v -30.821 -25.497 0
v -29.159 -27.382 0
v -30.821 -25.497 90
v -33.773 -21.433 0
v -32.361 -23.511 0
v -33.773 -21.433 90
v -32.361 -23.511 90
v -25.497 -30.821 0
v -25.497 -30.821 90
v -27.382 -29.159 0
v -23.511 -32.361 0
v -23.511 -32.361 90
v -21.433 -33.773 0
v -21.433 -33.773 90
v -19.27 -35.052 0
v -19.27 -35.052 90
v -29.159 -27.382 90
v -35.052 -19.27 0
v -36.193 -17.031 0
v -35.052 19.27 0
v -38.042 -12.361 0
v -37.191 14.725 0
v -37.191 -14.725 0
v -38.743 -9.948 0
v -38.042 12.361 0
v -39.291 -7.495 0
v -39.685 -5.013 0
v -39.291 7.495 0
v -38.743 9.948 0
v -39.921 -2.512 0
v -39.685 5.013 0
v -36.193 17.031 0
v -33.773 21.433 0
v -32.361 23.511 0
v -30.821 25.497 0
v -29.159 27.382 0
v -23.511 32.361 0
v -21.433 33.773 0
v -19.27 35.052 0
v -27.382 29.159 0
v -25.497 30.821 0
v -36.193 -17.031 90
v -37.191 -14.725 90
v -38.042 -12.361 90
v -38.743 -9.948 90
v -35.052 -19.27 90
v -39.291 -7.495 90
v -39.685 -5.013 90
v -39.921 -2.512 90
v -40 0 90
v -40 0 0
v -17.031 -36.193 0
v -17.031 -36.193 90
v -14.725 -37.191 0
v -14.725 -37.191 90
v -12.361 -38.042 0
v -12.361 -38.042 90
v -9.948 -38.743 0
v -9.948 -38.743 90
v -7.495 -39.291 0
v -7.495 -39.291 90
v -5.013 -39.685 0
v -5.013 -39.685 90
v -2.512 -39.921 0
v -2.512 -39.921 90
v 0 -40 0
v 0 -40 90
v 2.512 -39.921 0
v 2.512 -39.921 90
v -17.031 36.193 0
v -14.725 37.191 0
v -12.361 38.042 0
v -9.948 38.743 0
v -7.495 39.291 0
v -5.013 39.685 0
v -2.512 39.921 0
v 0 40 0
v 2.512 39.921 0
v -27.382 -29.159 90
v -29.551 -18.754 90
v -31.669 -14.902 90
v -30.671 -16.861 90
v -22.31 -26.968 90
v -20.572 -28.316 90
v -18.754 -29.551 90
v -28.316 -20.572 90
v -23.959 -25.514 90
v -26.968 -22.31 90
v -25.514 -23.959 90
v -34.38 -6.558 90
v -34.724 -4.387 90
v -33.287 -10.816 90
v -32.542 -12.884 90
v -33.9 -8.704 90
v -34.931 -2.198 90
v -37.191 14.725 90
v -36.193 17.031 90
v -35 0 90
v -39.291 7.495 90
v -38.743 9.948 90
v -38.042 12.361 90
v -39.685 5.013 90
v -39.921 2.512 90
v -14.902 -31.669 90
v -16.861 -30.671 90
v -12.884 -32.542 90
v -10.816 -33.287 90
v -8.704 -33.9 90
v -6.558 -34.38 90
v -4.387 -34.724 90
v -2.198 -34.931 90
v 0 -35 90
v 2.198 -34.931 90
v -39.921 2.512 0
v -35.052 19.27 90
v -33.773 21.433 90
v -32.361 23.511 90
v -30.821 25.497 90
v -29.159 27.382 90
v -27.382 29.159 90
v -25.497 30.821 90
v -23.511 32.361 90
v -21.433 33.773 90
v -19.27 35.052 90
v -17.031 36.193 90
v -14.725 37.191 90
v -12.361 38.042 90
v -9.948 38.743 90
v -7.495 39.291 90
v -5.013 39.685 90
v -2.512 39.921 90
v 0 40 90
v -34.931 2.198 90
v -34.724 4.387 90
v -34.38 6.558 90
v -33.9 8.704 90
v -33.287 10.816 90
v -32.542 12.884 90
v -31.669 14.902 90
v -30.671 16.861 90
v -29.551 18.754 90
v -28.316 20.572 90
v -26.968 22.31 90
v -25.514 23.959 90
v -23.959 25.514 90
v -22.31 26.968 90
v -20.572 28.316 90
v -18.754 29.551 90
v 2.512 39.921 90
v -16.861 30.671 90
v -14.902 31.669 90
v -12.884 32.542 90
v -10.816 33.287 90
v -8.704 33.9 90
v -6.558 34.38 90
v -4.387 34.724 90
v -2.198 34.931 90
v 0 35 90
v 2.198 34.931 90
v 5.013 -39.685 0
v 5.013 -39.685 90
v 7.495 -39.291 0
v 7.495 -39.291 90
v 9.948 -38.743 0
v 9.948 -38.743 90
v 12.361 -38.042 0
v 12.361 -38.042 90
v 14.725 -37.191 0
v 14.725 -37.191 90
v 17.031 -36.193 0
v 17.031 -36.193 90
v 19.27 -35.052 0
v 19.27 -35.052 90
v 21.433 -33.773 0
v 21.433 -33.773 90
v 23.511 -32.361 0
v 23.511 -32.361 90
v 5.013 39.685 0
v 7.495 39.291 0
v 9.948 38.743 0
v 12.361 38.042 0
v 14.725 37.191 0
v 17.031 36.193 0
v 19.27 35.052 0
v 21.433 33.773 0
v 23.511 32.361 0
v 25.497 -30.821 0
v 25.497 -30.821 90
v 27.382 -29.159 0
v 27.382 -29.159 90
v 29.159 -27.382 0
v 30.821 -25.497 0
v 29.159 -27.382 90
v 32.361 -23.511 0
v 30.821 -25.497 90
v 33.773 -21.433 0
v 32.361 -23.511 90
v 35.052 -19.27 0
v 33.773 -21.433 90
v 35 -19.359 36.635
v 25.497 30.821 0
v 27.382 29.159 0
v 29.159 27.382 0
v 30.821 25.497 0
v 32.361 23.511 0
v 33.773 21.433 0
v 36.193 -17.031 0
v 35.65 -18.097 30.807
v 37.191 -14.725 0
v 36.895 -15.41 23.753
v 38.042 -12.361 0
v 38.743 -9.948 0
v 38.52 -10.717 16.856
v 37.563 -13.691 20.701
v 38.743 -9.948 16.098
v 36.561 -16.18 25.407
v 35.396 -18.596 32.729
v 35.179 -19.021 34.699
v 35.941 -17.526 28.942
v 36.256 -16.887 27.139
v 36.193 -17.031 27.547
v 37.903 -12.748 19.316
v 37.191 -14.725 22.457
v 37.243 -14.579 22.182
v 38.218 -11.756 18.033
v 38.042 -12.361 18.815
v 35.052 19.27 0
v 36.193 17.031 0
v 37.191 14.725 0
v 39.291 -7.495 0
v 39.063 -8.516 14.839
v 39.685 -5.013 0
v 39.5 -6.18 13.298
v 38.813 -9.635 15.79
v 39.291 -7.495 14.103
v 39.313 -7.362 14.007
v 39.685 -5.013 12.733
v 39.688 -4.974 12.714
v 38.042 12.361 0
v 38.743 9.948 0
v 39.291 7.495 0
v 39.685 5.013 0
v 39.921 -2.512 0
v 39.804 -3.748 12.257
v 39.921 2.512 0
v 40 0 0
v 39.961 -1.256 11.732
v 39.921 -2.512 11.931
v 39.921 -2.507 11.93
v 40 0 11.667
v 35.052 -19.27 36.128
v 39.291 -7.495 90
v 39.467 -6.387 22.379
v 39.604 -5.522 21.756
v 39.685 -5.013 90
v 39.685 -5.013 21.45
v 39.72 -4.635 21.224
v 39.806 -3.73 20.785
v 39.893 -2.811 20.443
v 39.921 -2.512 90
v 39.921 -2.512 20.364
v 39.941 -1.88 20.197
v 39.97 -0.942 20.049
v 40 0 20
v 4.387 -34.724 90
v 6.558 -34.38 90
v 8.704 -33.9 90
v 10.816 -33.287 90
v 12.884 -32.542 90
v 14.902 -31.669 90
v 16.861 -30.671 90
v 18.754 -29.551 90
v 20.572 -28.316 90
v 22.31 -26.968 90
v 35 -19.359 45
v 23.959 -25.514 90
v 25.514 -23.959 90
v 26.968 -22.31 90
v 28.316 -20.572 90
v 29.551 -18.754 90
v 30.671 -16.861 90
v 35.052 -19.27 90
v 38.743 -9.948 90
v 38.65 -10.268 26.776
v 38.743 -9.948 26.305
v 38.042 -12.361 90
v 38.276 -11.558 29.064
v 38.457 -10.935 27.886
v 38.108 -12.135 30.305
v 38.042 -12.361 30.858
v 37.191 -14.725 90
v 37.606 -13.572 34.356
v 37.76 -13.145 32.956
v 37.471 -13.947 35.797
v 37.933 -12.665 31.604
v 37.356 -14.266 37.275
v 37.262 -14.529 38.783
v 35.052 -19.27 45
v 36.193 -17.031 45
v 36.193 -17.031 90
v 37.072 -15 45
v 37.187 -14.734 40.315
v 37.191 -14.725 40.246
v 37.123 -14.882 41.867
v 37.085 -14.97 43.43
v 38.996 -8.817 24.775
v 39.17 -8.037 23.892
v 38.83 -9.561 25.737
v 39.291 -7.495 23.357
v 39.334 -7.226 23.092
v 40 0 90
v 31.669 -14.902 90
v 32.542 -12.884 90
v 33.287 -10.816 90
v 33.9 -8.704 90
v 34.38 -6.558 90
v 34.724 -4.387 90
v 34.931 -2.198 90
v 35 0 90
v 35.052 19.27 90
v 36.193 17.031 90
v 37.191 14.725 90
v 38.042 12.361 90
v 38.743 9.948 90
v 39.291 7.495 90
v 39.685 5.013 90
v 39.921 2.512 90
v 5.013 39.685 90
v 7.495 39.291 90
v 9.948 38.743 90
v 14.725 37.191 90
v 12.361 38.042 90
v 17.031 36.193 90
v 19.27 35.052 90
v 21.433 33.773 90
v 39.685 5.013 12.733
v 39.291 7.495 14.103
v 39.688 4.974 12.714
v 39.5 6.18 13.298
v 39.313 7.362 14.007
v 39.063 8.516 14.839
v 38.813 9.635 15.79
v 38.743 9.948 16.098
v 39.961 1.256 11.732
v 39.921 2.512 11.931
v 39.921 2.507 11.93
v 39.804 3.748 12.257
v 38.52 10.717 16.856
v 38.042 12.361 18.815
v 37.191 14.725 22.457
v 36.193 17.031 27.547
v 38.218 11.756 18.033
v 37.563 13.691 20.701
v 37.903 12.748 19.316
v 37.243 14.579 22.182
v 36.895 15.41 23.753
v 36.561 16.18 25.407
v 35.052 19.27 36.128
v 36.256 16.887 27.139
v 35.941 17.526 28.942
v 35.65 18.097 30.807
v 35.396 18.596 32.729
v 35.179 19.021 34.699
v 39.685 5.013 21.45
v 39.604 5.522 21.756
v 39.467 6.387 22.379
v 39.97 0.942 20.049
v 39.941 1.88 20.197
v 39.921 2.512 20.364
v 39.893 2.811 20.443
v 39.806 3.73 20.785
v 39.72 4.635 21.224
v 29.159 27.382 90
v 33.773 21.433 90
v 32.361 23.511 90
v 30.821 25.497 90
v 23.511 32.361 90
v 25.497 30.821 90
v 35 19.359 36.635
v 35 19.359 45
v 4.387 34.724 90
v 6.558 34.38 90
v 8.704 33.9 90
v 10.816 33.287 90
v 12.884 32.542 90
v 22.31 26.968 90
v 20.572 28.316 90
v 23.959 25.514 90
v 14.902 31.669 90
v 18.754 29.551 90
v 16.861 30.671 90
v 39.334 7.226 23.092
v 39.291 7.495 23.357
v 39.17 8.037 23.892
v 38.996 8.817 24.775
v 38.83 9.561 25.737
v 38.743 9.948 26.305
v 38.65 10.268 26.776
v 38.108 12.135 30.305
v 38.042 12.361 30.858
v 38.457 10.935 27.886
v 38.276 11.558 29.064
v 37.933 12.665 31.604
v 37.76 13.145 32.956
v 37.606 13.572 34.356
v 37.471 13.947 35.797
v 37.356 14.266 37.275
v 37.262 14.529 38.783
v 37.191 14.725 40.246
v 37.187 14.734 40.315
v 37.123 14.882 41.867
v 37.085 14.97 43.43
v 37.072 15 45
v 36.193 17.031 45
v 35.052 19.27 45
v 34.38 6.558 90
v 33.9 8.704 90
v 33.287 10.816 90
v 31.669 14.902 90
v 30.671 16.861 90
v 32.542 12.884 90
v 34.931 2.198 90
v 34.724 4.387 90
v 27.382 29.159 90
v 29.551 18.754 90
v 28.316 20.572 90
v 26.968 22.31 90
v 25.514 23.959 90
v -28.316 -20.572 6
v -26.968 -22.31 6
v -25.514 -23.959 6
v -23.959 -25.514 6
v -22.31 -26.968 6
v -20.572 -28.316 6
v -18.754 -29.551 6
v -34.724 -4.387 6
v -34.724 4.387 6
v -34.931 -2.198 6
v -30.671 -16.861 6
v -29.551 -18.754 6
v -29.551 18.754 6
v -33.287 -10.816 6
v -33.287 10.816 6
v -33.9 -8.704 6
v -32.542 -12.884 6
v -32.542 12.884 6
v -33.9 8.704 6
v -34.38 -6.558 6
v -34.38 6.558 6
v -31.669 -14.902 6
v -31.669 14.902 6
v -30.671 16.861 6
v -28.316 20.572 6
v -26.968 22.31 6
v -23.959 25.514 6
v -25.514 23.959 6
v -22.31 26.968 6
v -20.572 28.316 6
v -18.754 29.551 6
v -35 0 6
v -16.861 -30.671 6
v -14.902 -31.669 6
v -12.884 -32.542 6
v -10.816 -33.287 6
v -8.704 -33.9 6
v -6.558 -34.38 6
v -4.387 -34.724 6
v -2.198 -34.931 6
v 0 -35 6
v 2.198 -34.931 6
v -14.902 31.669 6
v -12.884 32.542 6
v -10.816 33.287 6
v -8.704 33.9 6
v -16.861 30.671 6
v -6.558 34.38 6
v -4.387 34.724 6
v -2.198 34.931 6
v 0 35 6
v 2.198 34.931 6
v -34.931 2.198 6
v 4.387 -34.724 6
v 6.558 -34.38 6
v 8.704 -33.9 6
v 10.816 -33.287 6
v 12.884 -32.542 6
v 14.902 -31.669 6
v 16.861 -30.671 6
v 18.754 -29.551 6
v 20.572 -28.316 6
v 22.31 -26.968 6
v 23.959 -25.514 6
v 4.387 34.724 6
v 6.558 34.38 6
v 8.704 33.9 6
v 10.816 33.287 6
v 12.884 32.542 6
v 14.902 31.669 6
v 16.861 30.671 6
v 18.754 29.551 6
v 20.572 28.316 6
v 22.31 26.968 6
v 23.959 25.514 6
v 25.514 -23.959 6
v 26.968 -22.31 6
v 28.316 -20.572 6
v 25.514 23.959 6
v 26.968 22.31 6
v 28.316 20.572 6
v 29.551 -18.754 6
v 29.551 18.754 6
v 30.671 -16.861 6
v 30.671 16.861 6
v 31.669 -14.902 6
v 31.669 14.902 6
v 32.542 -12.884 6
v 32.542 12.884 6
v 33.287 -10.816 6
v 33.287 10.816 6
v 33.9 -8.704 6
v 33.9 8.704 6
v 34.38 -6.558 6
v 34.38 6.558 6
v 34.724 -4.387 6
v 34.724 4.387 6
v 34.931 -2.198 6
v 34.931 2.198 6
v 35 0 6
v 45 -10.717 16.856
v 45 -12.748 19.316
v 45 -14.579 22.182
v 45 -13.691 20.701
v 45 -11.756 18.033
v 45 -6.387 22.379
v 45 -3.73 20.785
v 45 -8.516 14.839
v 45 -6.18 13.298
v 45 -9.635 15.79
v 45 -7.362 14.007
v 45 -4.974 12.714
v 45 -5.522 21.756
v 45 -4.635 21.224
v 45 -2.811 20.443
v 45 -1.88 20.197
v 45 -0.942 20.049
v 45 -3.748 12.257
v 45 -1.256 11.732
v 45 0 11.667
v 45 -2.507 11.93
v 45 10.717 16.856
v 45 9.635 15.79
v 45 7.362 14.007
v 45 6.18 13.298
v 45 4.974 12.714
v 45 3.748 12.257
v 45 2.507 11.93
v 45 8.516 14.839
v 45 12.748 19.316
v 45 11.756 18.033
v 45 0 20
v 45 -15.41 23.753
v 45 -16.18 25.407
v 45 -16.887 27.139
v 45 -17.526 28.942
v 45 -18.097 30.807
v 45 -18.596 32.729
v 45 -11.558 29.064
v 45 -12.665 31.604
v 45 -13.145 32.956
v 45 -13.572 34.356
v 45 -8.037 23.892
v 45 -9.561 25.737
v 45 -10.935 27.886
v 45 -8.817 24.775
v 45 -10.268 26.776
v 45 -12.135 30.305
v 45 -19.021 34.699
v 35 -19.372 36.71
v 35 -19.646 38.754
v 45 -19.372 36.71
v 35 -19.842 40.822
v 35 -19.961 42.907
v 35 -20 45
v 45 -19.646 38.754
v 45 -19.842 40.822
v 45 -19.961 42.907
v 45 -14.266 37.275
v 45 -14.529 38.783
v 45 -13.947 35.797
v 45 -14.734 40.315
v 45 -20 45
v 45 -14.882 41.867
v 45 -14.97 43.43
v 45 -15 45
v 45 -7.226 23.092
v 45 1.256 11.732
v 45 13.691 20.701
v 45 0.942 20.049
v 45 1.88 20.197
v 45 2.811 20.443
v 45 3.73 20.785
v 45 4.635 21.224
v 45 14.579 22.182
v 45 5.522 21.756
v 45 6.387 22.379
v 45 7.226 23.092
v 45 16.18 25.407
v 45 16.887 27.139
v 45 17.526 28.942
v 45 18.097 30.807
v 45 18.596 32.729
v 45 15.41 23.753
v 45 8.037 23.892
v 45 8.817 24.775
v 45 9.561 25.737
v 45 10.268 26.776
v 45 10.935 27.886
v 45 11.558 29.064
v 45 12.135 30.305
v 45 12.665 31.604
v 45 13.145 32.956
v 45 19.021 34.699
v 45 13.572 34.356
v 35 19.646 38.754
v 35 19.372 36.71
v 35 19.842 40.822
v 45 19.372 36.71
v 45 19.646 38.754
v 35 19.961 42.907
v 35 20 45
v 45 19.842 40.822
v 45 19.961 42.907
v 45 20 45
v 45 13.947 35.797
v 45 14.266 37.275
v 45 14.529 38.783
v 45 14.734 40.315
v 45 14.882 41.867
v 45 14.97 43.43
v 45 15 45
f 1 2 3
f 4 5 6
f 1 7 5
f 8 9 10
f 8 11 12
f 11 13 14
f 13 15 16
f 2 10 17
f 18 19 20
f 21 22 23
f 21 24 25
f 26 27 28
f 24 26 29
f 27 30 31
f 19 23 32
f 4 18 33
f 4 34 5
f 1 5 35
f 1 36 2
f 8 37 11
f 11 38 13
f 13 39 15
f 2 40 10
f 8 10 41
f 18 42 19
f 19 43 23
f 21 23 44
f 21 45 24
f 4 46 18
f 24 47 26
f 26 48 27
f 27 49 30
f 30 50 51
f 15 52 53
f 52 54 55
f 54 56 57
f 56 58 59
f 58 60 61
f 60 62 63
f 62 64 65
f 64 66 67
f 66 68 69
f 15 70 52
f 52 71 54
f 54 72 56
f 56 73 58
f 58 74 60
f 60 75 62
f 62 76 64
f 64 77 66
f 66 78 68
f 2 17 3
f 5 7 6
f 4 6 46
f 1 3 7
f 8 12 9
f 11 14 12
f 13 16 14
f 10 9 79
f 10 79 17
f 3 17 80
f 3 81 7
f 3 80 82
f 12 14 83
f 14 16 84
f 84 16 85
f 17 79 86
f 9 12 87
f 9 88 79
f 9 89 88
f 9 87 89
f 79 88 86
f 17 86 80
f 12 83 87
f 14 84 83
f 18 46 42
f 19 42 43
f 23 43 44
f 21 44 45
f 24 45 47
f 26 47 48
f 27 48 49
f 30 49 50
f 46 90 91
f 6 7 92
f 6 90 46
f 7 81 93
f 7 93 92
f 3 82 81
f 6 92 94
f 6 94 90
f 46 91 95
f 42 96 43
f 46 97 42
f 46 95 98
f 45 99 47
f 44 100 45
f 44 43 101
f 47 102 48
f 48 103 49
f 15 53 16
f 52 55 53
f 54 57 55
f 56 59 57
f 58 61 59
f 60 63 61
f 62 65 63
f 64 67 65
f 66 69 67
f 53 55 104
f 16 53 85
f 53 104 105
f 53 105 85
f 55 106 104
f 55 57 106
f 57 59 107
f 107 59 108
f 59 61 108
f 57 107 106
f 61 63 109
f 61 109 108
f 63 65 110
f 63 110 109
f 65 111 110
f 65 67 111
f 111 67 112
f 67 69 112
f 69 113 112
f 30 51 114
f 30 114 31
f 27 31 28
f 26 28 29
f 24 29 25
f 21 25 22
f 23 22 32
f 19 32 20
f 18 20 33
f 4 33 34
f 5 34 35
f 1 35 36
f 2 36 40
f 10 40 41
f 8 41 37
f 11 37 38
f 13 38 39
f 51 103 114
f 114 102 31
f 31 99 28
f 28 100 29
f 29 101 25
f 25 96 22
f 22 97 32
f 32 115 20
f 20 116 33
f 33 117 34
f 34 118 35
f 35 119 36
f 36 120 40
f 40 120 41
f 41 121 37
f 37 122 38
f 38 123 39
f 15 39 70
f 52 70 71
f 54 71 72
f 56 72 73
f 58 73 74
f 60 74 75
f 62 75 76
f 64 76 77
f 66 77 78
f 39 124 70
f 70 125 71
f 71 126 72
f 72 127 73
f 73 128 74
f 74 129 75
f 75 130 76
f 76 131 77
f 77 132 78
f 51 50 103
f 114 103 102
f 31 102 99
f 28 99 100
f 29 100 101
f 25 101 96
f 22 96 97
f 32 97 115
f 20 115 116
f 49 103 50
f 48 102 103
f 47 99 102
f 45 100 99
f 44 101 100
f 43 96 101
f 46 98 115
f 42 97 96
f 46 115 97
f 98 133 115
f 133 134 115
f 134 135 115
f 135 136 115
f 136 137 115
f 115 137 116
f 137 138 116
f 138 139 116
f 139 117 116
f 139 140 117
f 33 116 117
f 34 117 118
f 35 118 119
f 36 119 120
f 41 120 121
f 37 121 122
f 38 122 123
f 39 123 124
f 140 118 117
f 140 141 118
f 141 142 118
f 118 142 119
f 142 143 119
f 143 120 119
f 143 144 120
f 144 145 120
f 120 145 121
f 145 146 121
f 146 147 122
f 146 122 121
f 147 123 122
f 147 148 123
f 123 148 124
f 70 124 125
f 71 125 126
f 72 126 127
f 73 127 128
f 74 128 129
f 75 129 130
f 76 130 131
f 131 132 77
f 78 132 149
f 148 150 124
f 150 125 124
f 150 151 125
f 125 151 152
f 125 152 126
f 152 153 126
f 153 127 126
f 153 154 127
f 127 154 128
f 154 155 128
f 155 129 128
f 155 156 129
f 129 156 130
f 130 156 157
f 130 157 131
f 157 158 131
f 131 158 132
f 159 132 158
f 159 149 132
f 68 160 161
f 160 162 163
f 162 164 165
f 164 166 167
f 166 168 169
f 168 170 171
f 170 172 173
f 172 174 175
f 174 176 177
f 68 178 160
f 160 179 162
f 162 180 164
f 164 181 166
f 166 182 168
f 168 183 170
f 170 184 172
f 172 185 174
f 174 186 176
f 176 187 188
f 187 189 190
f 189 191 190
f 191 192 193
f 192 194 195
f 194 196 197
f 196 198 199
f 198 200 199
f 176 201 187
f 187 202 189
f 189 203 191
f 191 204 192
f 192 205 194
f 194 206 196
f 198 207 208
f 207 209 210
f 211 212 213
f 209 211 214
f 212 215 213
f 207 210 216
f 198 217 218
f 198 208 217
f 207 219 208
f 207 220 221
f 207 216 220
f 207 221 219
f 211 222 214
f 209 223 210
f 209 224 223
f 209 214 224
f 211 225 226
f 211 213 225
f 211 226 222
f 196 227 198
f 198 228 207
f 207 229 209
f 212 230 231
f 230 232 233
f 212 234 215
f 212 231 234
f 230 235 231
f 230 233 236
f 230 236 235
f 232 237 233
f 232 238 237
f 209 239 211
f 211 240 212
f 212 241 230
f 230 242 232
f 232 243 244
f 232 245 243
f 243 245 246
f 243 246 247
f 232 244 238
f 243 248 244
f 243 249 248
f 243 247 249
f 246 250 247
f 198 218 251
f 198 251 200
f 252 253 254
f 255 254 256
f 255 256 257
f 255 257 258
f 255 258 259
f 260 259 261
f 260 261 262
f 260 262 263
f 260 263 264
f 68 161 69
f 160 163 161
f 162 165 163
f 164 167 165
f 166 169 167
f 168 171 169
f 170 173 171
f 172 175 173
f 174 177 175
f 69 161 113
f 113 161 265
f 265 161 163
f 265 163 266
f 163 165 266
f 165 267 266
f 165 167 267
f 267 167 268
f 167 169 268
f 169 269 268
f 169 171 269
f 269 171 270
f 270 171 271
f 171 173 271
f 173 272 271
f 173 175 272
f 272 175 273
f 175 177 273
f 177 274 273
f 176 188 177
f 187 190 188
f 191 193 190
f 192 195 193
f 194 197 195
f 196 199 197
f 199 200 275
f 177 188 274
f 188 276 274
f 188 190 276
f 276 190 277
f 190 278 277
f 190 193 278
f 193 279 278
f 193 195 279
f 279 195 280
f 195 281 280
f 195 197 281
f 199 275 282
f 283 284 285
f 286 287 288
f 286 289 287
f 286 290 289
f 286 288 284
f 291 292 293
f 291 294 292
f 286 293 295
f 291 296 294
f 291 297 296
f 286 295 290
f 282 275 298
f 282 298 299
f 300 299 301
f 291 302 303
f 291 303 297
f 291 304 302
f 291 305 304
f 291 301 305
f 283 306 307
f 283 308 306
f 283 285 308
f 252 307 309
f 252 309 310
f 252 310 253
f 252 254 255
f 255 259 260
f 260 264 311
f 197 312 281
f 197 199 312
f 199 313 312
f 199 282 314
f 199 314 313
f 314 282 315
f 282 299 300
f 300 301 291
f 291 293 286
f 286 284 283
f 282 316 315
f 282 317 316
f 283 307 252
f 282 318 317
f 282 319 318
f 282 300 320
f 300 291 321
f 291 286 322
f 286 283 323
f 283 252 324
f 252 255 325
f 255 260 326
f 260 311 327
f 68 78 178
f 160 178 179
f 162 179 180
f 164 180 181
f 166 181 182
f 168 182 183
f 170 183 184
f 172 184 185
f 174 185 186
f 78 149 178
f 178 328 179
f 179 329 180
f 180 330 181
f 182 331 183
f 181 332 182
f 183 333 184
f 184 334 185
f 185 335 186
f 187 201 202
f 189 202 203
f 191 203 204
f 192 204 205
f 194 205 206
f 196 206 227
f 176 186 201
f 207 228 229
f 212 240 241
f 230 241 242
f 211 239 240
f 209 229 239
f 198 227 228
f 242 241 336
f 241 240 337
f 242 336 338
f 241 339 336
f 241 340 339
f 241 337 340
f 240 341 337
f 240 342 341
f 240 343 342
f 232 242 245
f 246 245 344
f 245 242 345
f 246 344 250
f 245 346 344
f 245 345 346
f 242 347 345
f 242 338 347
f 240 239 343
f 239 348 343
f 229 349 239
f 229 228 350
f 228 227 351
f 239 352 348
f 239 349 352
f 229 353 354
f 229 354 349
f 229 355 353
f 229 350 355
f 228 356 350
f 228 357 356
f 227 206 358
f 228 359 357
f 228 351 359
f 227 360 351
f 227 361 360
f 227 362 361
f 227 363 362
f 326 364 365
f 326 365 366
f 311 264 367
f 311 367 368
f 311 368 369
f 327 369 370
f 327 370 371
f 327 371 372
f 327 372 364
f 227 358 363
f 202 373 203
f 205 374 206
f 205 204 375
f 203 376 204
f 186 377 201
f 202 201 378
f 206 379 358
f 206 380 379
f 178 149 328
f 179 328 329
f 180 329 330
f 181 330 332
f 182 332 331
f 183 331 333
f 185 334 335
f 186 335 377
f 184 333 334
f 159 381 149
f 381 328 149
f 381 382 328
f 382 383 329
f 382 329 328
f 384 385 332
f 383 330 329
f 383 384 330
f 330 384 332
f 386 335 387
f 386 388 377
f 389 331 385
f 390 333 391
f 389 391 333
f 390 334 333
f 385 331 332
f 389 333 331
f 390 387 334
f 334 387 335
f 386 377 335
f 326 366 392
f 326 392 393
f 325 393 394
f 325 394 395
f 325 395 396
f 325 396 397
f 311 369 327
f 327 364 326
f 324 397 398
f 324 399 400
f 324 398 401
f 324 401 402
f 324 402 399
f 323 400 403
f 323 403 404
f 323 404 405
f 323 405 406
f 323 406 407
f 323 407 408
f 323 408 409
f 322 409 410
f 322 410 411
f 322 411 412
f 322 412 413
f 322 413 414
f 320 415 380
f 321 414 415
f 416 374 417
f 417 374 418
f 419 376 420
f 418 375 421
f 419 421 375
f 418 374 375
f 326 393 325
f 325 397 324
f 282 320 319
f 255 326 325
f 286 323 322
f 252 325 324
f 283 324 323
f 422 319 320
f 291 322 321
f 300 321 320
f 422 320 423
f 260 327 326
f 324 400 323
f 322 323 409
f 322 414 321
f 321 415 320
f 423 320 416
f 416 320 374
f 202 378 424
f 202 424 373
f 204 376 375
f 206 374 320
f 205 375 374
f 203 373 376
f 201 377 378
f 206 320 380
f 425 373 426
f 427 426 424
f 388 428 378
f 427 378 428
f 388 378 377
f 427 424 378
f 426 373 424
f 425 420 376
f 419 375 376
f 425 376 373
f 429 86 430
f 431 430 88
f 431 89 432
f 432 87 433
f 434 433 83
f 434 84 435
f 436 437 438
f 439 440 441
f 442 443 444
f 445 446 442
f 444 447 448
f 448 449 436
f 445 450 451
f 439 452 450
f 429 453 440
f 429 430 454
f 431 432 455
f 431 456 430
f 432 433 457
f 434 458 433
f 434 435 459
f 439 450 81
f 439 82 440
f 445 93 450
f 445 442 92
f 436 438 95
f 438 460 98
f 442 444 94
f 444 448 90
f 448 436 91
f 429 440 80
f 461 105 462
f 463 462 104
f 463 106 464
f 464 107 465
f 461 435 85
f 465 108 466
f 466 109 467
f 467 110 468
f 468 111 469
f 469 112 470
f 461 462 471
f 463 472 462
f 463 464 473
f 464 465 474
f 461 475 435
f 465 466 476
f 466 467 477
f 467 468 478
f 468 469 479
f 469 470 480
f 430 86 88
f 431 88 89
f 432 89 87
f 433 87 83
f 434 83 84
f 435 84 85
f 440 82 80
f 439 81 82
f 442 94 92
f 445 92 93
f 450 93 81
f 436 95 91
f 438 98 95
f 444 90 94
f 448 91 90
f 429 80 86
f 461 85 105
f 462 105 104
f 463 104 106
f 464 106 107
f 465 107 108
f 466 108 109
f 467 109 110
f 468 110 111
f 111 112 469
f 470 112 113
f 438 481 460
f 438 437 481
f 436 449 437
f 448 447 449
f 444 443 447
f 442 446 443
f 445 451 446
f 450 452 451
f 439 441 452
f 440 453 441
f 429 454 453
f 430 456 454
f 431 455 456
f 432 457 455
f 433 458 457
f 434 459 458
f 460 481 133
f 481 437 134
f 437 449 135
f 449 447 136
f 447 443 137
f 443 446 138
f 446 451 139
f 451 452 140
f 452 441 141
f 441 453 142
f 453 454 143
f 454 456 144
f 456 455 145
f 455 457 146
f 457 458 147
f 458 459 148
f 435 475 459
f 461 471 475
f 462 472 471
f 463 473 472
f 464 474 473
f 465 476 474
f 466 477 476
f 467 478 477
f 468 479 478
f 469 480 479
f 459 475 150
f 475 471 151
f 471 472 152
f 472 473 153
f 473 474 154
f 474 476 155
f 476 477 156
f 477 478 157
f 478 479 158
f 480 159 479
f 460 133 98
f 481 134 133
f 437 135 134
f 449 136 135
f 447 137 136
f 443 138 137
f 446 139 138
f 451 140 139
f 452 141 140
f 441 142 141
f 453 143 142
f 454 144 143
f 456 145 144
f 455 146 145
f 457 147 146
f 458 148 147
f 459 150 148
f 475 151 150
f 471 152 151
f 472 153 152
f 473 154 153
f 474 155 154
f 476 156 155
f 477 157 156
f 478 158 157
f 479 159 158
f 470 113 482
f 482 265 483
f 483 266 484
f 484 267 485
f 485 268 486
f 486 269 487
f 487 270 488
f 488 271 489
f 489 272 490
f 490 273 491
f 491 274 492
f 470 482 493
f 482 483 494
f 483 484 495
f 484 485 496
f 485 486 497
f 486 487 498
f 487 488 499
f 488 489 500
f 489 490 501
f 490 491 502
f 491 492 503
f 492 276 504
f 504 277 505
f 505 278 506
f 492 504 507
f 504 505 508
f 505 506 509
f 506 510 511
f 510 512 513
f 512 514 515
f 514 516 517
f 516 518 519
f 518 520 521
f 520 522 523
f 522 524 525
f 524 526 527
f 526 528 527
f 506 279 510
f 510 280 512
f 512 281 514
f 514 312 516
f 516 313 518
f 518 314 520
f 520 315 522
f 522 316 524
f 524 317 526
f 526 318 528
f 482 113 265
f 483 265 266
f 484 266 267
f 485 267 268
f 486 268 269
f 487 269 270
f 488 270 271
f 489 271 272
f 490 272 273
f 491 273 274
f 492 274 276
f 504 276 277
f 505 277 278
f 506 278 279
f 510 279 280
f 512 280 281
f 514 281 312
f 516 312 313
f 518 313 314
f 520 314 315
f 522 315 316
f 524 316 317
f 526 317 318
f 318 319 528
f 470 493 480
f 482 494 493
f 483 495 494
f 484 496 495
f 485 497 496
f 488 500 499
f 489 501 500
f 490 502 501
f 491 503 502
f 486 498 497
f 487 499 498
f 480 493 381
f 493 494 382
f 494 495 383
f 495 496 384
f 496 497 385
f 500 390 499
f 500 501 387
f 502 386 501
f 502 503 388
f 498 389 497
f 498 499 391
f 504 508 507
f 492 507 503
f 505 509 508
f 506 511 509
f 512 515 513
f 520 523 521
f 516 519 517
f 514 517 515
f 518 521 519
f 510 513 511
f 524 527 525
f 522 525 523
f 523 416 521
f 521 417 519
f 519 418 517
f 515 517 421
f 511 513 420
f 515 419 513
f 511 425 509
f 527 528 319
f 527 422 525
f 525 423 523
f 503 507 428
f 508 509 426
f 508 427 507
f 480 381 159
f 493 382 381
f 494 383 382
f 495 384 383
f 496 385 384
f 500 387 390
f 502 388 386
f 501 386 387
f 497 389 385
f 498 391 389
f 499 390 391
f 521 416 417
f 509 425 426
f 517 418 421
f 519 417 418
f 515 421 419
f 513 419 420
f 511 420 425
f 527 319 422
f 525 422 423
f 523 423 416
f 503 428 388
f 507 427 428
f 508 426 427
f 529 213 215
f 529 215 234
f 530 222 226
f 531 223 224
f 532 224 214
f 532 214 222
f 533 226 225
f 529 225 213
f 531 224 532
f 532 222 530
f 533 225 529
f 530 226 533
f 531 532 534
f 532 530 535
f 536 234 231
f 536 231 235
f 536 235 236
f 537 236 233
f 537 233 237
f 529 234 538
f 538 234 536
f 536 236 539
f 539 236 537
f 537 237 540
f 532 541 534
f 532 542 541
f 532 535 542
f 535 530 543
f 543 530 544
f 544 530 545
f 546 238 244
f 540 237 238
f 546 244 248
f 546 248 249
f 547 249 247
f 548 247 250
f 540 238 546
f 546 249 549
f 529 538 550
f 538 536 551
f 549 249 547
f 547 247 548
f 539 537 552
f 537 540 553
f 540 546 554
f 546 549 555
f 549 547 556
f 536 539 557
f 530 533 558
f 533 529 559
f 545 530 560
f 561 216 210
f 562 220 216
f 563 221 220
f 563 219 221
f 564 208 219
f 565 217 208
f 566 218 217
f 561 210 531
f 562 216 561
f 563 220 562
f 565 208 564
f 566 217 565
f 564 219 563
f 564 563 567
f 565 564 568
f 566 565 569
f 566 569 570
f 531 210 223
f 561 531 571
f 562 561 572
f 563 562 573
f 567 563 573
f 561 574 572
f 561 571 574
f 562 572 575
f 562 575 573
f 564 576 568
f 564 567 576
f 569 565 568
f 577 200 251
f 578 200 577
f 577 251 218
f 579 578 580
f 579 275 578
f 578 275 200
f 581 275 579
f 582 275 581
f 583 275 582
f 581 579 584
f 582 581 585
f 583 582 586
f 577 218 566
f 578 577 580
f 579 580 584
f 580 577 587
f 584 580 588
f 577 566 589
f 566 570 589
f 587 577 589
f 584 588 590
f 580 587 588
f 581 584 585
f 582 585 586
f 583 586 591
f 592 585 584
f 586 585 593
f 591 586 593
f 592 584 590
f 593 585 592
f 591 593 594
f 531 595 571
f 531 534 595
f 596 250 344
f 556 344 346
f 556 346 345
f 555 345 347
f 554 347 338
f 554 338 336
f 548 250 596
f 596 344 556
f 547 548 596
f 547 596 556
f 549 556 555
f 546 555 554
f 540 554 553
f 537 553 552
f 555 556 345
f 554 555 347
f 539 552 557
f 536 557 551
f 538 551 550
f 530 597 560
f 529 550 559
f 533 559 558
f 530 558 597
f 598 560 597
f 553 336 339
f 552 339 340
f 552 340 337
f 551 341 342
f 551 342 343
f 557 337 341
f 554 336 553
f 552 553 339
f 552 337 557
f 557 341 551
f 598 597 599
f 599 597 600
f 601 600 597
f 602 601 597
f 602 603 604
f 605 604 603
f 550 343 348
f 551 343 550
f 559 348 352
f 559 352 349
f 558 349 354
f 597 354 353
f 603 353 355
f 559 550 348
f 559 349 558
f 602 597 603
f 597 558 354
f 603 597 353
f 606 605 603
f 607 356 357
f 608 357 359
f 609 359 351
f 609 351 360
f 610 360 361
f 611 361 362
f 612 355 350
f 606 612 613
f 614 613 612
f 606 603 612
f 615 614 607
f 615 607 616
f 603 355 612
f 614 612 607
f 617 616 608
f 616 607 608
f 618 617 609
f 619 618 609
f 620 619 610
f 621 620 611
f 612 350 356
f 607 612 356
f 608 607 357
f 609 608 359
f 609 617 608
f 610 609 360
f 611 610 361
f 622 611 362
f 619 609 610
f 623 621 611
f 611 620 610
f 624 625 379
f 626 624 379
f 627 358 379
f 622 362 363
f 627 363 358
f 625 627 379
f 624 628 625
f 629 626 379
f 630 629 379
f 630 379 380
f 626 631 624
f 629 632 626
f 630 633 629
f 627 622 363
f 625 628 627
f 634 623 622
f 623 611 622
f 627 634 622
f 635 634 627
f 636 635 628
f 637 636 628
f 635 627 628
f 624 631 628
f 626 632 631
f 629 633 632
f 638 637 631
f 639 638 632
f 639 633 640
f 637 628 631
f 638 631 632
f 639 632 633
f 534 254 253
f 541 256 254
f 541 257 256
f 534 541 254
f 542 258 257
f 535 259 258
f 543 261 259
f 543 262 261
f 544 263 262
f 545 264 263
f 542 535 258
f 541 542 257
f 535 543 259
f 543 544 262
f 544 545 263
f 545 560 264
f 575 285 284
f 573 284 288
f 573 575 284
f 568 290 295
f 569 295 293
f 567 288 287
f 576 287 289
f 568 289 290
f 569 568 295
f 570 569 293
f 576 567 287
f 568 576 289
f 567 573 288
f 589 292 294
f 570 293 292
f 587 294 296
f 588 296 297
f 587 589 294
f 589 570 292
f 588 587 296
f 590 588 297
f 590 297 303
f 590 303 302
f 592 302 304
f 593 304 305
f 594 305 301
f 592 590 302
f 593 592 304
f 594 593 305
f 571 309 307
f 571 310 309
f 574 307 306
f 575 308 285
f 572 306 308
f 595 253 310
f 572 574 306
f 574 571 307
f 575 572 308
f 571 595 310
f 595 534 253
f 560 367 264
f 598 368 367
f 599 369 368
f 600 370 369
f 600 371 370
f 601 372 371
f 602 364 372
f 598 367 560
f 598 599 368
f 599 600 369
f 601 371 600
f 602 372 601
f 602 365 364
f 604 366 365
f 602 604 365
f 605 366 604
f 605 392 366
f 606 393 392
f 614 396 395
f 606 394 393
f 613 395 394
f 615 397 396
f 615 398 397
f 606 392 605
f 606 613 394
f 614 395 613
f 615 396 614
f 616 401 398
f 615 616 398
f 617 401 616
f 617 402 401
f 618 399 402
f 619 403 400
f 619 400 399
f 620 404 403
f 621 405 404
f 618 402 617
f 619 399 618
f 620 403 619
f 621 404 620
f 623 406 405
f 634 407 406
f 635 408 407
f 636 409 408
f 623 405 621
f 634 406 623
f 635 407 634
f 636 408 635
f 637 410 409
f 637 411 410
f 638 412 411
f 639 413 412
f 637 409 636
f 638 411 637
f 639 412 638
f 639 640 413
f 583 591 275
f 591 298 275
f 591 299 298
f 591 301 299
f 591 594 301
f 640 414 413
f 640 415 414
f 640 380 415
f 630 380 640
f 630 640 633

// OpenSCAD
$fn = 100;

// Parameters
outer_dia = 80;
inner_dia = 70;
height = 90;
bottom_thickness = 6;
wall_thickness = (outer_dia - inner_dia) / 2;

handle_void_h = 30;
handle_void_w = 25;
handle_thickness = 10; // thickness of the handle "wire"

union() {
    // --- Mug Body ---
    difference() {
        // Outer shell
        cylinder(h = height, d = outer_dia);
        
        // Inner hollow
        translate([0, 0, bottom_thickness])
            cylinder(h = height - bottom_thickness + 1, d = inner_dia);
    }

    // --- Handle ---
    // Positioned at +X axis, centered vertically
    translate([outer_dia / 2, 0, height / 2])
    rotate([0, 90, 0]) 
    // Scale the X-axis (which is the handle's width extension) 
    // to achieve the specific void width while keeping height circular
    scale([handle_void_w / (handle_void_h / 2), 1, 1])
    difference() {
        // Outer shape of the handle ring
        cylinder(h = handle_thickness, r = (handle_void_h / 2) + (handle_thickness / 2), center = true);
        
        // Inner void of the handle ring
        cylinder(h = handle_thickness + 2, r = handle_void_h / 2, center = true);
        
        // Cut off the half that would be inside the mug to create the D-shape
        // Offset the cube to ensure a clean cut and slight overlap for manifold union
        translate([-(handle_void_h / 2), 0, 0])
            cube([handle_void_h, handle_void_h * 2, handle_thickness + 2], center = true);
    }
}
